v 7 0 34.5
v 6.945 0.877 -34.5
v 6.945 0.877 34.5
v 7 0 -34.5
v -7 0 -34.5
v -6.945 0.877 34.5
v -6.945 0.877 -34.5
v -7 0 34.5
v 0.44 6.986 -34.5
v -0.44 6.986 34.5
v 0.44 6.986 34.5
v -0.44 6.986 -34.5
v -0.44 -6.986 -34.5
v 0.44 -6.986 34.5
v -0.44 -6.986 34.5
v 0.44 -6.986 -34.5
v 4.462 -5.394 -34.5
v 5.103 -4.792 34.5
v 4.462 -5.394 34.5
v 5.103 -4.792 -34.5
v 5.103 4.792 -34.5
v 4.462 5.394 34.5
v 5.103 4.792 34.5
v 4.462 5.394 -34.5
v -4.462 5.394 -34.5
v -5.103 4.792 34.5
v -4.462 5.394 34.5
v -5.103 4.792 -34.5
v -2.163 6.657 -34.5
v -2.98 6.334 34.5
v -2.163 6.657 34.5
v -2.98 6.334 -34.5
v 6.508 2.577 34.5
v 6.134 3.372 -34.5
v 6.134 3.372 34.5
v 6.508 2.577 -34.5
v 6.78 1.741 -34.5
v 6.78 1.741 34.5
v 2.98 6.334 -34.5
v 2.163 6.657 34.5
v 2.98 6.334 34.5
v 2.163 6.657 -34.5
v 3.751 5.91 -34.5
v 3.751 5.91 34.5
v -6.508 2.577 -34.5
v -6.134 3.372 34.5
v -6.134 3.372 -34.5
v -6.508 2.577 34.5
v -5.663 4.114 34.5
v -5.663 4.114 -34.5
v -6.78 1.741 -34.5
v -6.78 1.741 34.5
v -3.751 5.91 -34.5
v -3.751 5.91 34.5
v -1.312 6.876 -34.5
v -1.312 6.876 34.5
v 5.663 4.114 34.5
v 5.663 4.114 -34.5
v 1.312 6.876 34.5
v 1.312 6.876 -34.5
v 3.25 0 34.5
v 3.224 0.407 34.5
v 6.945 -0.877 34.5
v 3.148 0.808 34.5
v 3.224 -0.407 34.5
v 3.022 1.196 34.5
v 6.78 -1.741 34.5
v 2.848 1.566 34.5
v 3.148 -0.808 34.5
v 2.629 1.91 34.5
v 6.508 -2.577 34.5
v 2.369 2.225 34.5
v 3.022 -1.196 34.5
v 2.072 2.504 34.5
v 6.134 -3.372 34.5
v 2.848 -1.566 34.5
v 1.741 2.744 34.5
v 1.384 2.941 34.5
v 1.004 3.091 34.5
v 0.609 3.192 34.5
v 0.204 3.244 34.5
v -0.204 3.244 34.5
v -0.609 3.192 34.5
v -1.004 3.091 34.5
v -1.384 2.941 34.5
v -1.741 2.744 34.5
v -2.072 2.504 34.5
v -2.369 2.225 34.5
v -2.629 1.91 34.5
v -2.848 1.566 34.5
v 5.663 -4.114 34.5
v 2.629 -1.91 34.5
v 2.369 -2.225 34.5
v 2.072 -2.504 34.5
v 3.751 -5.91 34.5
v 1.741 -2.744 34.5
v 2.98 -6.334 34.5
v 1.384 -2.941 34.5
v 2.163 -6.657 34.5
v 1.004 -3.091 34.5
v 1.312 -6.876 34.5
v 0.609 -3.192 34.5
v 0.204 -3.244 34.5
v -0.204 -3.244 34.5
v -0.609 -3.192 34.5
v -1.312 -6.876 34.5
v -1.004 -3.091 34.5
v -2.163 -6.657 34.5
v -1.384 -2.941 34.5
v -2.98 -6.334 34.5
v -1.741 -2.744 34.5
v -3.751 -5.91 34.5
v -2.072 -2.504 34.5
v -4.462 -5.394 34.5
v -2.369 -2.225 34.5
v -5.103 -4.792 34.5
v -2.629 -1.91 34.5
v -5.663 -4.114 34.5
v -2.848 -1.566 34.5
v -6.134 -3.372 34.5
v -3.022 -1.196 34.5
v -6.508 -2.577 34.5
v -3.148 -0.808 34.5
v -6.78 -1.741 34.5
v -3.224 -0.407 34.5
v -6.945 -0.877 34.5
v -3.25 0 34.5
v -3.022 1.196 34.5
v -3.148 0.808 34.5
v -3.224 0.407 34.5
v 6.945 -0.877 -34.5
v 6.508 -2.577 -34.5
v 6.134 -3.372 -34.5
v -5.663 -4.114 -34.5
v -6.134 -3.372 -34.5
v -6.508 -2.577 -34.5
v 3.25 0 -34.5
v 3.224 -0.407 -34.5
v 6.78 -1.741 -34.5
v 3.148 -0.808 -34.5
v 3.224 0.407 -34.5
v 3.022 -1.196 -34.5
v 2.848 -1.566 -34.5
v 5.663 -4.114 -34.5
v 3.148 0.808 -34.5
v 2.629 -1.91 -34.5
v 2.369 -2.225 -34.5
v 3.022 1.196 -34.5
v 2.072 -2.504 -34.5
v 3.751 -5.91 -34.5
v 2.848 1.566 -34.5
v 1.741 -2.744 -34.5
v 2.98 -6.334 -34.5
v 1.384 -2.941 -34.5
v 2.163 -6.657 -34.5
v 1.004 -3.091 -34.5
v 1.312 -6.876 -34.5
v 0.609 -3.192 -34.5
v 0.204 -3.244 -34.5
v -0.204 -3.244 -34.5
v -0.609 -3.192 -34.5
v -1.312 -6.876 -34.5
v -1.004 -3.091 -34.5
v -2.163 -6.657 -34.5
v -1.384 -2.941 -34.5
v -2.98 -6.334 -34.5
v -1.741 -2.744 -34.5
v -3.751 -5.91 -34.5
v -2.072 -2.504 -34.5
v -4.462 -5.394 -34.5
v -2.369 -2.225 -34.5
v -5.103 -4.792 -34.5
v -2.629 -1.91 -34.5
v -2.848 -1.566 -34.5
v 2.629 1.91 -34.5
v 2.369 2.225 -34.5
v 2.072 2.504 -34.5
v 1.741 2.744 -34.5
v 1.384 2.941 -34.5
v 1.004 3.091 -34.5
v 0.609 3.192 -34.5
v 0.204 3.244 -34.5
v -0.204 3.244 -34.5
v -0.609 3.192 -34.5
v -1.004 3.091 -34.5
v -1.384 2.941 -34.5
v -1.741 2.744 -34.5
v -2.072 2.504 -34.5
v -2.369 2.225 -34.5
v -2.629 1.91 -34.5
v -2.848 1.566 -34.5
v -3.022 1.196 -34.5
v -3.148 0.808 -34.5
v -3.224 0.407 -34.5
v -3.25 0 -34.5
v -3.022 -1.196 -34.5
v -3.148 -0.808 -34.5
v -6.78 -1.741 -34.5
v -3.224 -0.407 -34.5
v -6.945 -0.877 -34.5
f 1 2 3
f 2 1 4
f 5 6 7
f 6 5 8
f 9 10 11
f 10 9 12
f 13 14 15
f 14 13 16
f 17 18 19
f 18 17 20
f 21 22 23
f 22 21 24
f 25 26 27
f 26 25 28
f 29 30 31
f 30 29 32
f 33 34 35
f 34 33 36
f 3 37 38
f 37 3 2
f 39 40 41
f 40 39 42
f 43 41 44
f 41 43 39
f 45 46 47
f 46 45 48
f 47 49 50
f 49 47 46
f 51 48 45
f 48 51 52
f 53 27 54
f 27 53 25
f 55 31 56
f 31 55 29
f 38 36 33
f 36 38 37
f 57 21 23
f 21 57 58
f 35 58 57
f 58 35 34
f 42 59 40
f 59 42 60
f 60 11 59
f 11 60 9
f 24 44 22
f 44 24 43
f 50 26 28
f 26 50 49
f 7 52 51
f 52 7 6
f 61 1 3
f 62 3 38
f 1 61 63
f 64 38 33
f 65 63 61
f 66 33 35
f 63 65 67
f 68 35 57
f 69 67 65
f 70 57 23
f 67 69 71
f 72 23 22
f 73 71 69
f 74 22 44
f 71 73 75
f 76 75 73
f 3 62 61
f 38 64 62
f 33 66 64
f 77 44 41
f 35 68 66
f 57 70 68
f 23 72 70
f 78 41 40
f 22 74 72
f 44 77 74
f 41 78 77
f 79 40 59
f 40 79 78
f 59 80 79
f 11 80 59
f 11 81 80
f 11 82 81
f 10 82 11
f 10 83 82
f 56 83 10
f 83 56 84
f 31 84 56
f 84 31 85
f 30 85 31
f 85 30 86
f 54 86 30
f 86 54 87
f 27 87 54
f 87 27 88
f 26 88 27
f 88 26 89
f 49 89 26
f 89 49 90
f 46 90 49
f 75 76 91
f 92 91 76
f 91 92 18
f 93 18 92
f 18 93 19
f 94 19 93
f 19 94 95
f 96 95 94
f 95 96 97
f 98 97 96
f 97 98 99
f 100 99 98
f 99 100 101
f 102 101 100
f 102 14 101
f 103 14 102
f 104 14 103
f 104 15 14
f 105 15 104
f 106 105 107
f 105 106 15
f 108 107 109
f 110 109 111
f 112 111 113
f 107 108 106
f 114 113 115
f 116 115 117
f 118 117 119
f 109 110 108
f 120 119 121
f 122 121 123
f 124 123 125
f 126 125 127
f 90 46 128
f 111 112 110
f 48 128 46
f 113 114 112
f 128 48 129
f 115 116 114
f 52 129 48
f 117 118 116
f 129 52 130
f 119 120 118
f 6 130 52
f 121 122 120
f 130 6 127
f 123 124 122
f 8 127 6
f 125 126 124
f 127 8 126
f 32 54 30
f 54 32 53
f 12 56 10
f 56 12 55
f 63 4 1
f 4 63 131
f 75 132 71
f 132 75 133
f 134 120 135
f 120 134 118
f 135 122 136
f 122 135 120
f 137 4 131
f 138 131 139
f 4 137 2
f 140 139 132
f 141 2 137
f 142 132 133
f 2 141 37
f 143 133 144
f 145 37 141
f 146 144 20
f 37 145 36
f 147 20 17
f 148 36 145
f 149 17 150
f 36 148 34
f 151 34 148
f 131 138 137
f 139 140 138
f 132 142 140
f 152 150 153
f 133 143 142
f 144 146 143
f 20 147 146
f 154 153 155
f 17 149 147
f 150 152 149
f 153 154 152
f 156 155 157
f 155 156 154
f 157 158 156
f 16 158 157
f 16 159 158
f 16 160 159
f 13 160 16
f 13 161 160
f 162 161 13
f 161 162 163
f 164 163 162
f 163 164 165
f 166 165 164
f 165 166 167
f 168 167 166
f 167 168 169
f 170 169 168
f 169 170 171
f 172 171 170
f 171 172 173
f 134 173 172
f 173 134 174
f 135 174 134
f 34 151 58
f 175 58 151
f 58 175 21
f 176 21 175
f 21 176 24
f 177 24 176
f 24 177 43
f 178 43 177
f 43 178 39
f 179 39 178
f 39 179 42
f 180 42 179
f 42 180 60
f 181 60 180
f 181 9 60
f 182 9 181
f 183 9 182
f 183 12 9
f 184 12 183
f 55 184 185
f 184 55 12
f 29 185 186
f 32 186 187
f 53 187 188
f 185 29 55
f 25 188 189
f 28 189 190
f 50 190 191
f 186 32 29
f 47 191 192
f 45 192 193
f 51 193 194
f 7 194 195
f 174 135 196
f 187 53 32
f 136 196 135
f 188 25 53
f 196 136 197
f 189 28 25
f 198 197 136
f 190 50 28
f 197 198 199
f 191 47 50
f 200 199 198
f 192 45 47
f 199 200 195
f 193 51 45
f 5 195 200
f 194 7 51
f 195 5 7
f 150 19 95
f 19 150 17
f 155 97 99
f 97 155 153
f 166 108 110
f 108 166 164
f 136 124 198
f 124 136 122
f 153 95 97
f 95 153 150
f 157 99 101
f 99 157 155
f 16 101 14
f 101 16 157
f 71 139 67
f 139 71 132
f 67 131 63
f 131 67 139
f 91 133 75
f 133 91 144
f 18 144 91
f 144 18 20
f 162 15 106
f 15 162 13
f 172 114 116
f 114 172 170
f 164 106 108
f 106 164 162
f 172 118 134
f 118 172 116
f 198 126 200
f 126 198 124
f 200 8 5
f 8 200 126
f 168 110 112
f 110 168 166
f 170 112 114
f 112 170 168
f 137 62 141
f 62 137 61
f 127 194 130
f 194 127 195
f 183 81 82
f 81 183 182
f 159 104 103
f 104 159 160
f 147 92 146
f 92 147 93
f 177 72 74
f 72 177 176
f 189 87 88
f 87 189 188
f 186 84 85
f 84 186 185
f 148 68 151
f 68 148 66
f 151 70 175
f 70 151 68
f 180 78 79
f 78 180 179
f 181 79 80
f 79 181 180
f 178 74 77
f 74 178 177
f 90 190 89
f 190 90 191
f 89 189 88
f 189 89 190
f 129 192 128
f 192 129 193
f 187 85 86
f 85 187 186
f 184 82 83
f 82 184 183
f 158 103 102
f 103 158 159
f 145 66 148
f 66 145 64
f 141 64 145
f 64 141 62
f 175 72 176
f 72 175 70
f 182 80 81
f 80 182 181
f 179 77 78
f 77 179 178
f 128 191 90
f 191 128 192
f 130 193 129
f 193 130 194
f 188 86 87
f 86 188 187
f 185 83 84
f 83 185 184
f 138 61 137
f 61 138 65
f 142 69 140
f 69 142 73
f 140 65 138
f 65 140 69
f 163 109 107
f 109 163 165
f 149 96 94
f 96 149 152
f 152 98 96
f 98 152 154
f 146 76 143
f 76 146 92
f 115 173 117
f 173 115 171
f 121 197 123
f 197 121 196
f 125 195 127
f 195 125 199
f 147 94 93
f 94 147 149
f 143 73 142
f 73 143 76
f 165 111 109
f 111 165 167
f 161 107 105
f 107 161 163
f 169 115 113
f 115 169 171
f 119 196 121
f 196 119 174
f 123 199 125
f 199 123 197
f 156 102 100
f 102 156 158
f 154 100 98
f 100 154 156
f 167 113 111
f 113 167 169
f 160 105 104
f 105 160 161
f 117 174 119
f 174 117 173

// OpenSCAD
$fn = 50;


difference() {
	union() {
		translate(v = [0, 0, -34.5000000000]) {
			cylinder(h = 69, r = 7.0000000000);
		}
	}
	union() {
		translate(v = [0, 0, -100.0000000000]) {
			cylinder(h = 200, r = 3.2500000000);
		}
	}
}
